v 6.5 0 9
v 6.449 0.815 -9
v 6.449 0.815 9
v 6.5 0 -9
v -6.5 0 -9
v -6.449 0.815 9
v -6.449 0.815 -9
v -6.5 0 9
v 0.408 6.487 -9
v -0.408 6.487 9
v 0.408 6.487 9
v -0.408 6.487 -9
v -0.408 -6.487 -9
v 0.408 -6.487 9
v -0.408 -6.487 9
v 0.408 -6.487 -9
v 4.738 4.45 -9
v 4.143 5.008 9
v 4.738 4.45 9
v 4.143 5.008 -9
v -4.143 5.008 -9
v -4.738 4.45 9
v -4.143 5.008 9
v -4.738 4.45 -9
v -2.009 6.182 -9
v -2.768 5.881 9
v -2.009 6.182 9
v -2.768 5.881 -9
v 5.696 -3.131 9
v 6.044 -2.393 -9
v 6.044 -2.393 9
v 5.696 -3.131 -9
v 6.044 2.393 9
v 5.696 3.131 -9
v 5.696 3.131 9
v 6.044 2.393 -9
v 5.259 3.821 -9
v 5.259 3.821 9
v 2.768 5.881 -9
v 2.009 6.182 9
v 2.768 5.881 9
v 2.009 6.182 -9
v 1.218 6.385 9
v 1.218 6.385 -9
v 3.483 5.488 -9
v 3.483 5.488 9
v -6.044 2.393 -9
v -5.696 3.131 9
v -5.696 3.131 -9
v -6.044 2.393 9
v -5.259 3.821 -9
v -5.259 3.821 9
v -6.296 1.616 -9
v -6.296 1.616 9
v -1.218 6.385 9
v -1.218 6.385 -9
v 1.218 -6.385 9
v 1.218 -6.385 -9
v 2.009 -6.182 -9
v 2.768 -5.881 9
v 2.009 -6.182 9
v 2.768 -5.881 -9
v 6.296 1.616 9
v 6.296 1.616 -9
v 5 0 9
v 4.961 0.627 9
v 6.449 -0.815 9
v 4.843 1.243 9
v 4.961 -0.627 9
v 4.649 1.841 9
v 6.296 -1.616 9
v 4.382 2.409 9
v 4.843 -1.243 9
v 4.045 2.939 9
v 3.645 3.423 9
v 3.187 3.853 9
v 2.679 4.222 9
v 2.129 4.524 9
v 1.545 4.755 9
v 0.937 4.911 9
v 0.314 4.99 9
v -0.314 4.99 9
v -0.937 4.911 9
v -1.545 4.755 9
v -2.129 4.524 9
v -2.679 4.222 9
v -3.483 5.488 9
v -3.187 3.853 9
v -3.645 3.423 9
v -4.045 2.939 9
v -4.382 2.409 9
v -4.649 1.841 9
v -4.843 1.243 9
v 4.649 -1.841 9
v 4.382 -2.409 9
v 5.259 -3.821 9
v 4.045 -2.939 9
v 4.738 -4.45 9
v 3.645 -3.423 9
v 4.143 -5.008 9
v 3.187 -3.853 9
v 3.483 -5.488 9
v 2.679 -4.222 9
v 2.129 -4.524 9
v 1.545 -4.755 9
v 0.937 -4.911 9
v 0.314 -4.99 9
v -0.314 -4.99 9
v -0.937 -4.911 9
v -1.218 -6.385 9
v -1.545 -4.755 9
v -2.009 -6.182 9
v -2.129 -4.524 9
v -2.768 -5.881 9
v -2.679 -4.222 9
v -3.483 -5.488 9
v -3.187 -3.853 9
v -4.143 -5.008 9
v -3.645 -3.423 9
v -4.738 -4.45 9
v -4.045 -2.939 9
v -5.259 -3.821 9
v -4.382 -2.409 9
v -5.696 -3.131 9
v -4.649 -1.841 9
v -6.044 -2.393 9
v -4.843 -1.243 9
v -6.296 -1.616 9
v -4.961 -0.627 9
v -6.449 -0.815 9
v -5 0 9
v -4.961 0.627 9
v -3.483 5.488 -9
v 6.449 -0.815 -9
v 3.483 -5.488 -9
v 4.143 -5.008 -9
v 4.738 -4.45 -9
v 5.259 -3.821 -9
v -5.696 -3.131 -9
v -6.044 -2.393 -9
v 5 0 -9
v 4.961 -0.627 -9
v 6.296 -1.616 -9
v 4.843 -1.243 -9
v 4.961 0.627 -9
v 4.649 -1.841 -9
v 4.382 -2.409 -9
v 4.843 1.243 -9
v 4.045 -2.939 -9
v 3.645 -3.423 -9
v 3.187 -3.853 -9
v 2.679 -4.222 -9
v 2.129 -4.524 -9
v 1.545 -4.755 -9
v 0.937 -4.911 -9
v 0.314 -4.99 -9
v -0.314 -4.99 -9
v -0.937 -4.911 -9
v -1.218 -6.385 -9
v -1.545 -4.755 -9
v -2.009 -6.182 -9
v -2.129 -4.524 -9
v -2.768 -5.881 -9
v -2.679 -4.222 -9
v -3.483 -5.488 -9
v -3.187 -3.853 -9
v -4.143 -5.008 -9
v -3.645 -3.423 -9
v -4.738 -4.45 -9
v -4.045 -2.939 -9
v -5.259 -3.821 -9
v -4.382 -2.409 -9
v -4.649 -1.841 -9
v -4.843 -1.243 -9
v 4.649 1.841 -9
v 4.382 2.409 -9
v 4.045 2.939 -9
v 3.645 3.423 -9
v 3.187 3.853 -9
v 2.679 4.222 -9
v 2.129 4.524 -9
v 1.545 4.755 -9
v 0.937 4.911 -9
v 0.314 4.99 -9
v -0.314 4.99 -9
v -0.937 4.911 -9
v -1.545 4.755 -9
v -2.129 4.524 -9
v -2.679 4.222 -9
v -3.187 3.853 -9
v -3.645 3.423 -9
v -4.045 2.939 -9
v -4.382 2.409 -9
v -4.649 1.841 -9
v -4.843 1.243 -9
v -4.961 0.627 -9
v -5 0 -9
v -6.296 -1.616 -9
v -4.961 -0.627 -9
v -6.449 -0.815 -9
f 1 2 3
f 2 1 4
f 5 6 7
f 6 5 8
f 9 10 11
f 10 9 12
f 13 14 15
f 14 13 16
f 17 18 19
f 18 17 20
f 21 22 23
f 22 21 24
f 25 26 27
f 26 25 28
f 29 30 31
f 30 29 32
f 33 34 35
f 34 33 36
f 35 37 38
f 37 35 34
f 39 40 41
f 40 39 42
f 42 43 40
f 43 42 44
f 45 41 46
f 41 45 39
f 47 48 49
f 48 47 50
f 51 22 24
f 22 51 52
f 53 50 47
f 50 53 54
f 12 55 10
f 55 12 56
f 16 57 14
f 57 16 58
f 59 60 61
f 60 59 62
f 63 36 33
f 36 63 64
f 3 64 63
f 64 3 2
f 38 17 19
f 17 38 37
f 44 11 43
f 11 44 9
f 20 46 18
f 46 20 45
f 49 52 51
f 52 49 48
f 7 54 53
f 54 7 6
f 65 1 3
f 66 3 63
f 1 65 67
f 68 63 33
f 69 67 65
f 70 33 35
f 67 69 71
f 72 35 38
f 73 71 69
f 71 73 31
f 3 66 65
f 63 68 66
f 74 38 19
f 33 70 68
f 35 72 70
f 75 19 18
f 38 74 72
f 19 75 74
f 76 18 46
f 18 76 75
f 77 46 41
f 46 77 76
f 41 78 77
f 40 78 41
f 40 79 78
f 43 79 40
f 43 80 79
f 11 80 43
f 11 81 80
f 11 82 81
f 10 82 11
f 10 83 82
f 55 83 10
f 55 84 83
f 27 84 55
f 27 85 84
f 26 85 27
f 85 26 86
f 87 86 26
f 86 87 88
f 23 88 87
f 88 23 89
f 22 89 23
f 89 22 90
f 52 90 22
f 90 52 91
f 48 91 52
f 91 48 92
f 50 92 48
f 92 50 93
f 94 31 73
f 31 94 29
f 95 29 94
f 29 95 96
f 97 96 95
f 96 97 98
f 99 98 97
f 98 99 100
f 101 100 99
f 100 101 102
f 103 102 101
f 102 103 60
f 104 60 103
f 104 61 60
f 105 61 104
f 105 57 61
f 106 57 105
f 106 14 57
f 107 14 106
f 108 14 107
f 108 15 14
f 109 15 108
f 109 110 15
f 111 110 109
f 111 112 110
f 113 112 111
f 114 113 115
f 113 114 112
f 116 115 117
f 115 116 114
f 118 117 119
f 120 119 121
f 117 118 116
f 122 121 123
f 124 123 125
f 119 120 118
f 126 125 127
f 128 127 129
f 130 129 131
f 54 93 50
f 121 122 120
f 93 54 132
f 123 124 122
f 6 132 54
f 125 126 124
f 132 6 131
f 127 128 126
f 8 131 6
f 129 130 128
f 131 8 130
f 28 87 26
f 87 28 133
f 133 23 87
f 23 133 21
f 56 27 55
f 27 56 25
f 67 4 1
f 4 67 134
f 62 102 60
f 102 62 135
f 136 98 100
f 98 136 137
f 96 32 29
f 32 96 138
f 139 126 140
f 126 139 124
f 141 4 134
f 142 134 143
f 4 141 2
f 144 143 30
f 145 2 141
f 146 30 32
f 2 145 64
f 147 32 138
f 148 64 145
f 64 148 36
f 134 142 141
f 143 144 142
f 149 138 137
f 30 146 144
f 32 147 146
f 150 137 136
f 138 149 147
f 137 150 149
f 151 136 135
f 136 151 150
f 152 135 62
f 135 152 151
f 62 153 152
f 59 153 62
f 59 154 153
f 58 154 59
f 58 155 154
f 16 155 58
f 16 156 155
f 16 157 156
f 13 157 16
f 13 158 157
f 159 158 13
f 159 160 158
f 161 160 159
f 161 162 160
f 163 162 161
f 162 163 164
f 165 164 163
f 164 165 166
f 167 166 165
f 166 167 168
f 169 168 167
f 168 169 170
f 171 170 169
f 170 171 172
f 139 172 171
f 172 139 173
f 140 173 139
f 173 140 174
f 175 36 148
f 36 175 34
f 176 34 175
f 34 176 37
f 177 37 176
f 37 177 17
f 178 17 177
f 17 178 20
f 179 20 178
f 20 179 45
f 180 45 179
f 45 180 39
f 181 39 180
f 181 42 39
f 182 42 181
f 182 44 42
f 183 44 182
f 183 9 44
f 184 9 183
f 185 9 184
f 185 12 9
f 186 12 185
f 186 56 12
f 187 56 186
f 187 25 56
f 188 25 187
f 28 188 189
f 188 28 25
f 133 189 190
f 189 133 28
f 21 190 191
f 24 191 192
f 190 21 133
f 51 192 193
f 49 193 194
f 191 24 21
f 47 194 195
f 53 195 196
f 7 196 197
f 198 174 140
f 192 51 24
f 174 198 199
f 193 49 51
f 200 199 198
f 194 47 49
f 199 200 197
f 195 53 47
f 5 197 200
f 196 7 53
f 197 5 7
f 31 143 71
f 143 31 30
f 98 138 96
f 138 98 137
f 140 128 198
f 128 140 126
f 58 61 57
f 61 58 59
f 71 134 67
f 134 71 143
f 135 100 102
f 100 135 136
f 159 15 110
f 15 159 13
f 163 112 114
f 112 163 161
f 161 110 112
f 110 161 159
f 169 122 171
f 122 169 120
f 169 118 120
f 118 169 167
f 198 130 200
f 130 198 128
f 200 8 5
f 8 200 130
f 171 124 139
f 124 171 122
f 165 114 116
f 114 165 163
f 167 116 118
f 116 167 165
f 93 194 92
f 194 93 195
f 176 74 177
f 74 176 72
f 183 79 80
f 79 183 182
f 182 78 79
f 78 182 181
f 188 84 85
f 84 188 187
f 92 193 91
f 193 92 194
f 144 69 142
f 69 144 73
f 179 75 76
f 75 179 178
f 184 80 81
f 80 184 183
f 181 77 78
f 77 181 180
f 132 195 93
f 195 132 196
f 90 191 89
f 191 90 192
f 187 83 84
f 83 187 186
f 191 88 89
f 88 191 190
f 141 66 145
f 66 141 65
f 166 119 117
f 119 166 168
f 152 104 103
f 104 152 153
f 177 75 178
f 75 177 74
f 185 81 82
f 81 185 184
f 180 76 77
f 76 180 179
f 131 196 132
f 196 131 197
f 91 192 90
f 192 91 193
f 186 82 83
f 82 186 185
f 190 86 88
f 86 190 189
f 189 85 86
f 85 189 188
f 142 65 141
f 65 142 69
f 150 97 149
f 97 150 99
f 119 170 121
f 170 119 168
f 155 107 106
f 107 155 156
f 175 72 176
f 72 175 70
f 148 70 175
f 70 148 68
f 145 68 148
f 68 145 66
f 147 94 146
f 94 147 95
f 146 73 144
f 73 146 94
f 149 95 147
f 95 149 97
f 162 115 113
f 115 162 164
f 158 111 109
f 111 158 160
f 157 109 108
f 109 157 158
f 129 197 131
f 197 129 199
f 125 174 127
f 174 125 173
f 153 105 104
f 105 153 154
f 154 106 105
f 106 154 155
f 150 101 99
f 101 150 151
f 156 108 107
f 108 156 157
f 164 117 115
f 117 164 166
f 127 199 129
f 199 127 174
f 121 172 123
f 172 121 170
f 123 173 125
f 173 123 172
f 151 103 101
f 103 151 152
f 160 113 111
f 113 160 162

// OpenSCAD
$fn = 50;


difference() {
	union() {
		translate(v = [0, 0, -9.0000000000]) {
			cylinder(h = 18, r = 6.5000000000);
		}
	}
	union() {
		translate(v = [0, 0, -100.0000000000]) {
			cylinder(h = 200, r = 5);
		}
	}
}
